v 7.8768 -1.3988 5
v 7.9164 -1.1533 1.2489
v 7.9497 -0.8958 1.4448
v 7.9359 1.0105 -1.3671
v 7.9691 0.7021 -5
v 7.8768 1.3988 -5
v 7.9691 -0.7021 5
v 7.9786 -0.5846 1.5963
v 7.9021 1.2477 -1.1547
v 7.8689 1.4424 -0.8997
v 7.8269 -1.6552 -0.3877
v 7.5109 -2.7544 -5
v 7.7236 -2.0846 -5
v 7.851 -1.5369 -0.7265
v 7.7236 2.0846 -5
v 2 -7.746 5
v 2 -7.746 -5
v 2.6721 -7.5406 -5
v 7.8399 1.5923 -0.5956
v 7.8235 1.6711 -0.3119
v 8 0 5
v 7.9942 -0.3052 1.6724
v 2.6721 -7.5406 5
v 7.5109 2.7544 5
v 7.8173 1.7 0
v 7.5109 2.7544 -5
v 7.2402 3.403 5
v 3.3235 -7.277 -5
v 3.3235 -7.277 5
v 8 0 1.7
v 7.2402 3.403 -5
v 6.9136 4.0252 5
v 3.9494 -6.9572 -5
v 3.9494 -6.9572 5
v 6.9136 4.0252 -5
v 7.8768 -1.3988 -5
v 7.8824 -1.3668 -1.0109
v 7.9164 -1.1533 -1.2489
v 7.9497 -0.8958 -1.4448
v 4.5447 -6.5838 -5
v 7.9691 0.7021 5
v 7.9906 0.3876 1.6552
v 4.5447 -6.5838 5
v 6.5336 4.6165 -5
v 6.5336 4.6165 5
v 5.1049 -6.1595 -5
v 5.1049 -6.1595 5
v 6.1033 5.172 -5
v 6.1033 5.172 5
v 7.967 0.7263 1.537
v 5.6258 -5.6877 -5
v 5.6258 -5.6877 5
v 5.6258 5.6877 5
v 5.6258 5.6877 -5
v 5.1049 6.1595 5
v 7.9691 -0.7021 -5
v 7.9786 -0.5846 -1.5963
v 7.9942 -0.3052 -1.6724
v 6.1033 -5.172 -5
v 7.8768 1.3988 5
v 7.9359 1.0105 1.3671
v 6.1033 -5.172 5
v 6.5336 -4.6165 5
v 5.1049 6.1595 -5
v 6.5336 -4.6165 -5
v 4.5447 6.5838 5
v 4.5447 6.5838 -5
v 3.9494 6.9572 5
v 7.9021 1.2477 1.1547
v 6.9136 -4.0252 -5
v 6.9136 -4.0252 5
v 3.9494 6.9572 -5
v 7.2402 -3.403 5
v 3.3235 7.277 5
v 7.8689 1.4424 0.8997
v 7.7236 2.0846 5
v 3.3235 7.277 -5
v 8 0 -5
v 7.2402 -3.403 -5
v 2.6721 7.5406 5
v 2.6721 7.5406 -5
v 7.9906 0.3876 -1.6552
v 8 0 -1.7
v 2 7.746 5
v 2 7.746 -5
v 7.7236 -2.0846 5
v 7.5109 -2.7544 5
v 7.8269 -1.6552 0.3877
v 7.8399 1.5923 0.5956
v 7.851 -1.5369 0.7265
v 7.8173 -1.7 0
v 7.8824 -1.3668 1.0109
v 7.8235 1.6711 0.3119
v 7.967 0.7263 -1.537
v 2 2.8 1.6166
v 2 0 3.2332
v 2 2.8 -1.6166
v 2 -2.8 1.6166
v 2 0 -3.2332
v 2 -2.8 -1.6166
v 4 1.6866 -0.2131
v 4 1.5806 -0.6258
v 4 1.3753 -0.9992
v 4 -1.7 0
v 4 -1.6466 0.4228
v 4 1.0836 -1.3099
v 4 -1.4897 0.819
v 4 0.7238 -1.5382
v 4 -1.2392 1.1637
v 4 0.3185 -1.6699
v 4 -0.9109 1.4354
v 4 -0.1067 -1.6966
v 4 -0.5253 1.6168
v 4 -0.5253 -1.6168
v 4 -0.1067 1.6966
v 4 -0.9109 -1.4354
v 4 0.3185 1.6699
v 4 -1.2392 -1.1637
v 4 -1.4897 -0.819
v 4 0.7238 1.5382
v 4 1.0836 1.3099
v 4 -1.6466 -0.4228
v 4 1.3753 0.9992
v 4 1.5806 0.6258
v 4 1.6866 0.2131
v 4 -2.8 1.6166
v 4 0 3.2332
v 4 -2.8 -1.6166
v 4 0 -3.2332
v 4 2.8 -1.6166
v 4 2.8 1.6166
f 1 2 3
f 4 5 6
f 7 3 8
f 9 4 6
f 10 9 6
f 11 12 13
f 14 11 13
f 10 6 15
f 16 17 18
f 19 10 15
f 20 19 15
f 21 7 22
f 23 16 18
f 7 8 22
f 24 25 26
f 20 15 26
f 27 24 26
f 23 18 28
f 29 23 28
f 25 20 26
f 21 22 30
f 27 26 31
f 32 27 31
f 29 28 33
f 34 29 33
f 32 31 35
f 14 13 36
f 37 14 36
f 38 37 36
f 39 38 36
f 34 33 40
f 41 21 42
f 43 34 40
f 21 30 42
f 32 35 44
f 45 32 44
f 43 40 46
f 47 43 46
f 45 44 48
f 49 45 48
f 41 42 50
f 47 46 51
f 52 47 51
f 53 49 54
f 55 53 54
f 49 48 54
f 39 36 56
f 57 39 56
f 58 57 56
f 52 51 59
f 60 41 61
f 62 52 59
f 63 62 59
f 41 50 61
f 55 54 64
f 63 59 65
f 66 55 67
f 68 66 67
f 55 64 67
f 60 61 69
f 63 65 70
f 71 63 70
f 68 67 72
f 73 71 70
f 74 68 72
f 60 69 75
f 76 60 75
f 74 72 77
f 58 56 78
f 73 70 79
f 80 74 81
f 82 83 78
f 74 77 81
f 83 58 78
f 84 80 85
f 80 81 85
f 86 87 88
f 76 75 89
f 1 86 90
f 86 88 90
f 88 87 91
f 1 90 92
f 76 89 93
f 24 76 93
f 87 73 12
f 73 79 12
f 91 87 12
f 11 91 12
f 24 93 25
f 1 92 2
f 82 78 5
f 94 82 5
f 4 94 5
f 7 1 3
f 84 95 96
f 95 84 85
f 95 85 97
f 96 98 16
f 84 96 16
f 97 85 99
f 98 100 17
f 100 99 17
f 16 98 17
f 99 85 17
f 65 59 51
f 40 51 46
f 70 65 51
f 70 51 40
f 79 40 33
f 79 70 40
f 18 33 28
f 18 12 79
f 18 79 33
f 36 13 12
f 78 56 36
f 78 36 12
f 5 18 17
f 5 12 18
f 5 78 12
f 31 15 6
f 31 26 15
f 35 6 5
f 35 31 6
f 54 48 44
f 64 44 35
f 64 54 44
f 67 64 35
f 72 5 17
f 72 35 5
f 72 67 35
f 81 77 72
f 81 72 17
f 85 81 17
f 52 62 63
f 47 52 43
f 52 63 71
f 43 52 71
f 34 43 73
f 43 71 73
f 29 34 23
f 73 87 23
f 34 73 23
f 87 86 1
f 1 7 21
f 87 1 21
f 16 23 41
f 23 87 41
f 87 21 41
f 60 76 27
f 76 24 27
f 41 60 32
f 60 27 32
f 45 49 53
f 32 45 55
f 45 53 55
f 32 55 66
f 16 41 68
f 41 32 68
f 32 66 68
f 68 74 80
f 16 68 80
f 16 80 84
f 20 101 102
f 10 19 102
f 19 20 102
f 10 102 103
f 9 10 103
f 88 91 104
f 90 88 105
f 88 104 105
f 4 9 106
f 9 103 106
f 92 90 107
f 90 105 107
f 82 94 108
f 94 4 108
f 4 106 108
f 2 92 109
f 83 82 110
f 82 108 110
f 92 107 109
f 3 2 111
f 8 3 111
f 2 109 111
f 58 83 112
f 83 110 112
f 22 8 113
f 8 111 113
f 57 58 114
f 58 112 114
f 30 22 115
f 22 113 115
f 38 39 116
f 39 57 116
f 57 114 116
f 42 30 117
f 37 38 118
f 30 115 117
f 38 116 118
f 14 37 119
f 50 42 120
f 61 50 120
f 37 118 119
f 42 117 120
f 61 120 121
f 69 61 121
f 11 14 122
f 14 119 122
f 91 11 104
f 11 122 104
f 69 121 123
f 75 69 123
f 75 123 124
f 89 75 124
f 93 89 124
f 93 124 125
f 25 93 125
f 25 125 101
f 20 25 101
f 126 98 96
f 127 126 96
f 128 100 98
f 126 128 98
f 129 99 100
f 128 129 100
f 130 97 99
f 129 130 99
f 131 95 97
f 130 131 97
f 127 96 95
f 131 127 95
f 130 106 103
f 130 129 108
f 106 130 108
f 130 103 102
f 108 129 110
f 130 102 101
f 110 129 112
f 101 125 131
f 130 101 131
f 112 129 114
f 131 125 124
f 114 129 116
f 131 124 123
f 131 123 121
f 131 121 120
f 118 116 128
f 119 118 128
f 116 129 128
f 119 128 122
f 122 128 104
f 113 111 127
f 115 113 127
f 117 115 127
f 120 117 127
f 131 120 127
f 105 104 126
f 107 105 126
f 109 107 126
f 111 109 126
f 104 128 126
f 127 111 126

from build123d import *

# Parameters (mm, degrees)
PAD_DEPTH       = 5
POCKET_DEPTH    = 2
SKETCH002_R     = 1.7
POCKET001_DEPTH = 4.001


with BuildPart() as part:
    # Sketch → Pad (new body, symmetric)
    with BuildSketch(Plane.XY):
        with BuildLine():
            ThreePointArc((2, -7.745967), (8, 0), (2, 7.745967))
            Line((2, 7.745967), (2, -7.745967))
        make_face()
    extrude(amount=PAD_DEPTH, both=True)

    # Sketch001 → Pocket (cut)
    with BuildSketch(Plane(origin=(2, 0, 0), x_dir=(0, -1, 0), z_dir=(-1, 0, 0))):
        Polygon((2.8, -1.616581), (2.8, 1.616581), (0, 3.233162), (-2.8, 1.616581), (-2.8, -1.616581), (0, -3.233162), align=None)
    extrude(amount=-POCKET_DEPTH, mode=Mode.SUBTRACT)

    # Sketch002 → Pocket001 (cut, through all)
    with BuildSketch(Plane(origin=(4, 0, 0), x_dir=(0, -1, 0), z_dir=(-1, 0, 0))):
        Circle(SKETCH002_R)
    extrude(amount=-POCKET001_DEPTH, mode=Mode.SUBTRACT)


solid = part.part
